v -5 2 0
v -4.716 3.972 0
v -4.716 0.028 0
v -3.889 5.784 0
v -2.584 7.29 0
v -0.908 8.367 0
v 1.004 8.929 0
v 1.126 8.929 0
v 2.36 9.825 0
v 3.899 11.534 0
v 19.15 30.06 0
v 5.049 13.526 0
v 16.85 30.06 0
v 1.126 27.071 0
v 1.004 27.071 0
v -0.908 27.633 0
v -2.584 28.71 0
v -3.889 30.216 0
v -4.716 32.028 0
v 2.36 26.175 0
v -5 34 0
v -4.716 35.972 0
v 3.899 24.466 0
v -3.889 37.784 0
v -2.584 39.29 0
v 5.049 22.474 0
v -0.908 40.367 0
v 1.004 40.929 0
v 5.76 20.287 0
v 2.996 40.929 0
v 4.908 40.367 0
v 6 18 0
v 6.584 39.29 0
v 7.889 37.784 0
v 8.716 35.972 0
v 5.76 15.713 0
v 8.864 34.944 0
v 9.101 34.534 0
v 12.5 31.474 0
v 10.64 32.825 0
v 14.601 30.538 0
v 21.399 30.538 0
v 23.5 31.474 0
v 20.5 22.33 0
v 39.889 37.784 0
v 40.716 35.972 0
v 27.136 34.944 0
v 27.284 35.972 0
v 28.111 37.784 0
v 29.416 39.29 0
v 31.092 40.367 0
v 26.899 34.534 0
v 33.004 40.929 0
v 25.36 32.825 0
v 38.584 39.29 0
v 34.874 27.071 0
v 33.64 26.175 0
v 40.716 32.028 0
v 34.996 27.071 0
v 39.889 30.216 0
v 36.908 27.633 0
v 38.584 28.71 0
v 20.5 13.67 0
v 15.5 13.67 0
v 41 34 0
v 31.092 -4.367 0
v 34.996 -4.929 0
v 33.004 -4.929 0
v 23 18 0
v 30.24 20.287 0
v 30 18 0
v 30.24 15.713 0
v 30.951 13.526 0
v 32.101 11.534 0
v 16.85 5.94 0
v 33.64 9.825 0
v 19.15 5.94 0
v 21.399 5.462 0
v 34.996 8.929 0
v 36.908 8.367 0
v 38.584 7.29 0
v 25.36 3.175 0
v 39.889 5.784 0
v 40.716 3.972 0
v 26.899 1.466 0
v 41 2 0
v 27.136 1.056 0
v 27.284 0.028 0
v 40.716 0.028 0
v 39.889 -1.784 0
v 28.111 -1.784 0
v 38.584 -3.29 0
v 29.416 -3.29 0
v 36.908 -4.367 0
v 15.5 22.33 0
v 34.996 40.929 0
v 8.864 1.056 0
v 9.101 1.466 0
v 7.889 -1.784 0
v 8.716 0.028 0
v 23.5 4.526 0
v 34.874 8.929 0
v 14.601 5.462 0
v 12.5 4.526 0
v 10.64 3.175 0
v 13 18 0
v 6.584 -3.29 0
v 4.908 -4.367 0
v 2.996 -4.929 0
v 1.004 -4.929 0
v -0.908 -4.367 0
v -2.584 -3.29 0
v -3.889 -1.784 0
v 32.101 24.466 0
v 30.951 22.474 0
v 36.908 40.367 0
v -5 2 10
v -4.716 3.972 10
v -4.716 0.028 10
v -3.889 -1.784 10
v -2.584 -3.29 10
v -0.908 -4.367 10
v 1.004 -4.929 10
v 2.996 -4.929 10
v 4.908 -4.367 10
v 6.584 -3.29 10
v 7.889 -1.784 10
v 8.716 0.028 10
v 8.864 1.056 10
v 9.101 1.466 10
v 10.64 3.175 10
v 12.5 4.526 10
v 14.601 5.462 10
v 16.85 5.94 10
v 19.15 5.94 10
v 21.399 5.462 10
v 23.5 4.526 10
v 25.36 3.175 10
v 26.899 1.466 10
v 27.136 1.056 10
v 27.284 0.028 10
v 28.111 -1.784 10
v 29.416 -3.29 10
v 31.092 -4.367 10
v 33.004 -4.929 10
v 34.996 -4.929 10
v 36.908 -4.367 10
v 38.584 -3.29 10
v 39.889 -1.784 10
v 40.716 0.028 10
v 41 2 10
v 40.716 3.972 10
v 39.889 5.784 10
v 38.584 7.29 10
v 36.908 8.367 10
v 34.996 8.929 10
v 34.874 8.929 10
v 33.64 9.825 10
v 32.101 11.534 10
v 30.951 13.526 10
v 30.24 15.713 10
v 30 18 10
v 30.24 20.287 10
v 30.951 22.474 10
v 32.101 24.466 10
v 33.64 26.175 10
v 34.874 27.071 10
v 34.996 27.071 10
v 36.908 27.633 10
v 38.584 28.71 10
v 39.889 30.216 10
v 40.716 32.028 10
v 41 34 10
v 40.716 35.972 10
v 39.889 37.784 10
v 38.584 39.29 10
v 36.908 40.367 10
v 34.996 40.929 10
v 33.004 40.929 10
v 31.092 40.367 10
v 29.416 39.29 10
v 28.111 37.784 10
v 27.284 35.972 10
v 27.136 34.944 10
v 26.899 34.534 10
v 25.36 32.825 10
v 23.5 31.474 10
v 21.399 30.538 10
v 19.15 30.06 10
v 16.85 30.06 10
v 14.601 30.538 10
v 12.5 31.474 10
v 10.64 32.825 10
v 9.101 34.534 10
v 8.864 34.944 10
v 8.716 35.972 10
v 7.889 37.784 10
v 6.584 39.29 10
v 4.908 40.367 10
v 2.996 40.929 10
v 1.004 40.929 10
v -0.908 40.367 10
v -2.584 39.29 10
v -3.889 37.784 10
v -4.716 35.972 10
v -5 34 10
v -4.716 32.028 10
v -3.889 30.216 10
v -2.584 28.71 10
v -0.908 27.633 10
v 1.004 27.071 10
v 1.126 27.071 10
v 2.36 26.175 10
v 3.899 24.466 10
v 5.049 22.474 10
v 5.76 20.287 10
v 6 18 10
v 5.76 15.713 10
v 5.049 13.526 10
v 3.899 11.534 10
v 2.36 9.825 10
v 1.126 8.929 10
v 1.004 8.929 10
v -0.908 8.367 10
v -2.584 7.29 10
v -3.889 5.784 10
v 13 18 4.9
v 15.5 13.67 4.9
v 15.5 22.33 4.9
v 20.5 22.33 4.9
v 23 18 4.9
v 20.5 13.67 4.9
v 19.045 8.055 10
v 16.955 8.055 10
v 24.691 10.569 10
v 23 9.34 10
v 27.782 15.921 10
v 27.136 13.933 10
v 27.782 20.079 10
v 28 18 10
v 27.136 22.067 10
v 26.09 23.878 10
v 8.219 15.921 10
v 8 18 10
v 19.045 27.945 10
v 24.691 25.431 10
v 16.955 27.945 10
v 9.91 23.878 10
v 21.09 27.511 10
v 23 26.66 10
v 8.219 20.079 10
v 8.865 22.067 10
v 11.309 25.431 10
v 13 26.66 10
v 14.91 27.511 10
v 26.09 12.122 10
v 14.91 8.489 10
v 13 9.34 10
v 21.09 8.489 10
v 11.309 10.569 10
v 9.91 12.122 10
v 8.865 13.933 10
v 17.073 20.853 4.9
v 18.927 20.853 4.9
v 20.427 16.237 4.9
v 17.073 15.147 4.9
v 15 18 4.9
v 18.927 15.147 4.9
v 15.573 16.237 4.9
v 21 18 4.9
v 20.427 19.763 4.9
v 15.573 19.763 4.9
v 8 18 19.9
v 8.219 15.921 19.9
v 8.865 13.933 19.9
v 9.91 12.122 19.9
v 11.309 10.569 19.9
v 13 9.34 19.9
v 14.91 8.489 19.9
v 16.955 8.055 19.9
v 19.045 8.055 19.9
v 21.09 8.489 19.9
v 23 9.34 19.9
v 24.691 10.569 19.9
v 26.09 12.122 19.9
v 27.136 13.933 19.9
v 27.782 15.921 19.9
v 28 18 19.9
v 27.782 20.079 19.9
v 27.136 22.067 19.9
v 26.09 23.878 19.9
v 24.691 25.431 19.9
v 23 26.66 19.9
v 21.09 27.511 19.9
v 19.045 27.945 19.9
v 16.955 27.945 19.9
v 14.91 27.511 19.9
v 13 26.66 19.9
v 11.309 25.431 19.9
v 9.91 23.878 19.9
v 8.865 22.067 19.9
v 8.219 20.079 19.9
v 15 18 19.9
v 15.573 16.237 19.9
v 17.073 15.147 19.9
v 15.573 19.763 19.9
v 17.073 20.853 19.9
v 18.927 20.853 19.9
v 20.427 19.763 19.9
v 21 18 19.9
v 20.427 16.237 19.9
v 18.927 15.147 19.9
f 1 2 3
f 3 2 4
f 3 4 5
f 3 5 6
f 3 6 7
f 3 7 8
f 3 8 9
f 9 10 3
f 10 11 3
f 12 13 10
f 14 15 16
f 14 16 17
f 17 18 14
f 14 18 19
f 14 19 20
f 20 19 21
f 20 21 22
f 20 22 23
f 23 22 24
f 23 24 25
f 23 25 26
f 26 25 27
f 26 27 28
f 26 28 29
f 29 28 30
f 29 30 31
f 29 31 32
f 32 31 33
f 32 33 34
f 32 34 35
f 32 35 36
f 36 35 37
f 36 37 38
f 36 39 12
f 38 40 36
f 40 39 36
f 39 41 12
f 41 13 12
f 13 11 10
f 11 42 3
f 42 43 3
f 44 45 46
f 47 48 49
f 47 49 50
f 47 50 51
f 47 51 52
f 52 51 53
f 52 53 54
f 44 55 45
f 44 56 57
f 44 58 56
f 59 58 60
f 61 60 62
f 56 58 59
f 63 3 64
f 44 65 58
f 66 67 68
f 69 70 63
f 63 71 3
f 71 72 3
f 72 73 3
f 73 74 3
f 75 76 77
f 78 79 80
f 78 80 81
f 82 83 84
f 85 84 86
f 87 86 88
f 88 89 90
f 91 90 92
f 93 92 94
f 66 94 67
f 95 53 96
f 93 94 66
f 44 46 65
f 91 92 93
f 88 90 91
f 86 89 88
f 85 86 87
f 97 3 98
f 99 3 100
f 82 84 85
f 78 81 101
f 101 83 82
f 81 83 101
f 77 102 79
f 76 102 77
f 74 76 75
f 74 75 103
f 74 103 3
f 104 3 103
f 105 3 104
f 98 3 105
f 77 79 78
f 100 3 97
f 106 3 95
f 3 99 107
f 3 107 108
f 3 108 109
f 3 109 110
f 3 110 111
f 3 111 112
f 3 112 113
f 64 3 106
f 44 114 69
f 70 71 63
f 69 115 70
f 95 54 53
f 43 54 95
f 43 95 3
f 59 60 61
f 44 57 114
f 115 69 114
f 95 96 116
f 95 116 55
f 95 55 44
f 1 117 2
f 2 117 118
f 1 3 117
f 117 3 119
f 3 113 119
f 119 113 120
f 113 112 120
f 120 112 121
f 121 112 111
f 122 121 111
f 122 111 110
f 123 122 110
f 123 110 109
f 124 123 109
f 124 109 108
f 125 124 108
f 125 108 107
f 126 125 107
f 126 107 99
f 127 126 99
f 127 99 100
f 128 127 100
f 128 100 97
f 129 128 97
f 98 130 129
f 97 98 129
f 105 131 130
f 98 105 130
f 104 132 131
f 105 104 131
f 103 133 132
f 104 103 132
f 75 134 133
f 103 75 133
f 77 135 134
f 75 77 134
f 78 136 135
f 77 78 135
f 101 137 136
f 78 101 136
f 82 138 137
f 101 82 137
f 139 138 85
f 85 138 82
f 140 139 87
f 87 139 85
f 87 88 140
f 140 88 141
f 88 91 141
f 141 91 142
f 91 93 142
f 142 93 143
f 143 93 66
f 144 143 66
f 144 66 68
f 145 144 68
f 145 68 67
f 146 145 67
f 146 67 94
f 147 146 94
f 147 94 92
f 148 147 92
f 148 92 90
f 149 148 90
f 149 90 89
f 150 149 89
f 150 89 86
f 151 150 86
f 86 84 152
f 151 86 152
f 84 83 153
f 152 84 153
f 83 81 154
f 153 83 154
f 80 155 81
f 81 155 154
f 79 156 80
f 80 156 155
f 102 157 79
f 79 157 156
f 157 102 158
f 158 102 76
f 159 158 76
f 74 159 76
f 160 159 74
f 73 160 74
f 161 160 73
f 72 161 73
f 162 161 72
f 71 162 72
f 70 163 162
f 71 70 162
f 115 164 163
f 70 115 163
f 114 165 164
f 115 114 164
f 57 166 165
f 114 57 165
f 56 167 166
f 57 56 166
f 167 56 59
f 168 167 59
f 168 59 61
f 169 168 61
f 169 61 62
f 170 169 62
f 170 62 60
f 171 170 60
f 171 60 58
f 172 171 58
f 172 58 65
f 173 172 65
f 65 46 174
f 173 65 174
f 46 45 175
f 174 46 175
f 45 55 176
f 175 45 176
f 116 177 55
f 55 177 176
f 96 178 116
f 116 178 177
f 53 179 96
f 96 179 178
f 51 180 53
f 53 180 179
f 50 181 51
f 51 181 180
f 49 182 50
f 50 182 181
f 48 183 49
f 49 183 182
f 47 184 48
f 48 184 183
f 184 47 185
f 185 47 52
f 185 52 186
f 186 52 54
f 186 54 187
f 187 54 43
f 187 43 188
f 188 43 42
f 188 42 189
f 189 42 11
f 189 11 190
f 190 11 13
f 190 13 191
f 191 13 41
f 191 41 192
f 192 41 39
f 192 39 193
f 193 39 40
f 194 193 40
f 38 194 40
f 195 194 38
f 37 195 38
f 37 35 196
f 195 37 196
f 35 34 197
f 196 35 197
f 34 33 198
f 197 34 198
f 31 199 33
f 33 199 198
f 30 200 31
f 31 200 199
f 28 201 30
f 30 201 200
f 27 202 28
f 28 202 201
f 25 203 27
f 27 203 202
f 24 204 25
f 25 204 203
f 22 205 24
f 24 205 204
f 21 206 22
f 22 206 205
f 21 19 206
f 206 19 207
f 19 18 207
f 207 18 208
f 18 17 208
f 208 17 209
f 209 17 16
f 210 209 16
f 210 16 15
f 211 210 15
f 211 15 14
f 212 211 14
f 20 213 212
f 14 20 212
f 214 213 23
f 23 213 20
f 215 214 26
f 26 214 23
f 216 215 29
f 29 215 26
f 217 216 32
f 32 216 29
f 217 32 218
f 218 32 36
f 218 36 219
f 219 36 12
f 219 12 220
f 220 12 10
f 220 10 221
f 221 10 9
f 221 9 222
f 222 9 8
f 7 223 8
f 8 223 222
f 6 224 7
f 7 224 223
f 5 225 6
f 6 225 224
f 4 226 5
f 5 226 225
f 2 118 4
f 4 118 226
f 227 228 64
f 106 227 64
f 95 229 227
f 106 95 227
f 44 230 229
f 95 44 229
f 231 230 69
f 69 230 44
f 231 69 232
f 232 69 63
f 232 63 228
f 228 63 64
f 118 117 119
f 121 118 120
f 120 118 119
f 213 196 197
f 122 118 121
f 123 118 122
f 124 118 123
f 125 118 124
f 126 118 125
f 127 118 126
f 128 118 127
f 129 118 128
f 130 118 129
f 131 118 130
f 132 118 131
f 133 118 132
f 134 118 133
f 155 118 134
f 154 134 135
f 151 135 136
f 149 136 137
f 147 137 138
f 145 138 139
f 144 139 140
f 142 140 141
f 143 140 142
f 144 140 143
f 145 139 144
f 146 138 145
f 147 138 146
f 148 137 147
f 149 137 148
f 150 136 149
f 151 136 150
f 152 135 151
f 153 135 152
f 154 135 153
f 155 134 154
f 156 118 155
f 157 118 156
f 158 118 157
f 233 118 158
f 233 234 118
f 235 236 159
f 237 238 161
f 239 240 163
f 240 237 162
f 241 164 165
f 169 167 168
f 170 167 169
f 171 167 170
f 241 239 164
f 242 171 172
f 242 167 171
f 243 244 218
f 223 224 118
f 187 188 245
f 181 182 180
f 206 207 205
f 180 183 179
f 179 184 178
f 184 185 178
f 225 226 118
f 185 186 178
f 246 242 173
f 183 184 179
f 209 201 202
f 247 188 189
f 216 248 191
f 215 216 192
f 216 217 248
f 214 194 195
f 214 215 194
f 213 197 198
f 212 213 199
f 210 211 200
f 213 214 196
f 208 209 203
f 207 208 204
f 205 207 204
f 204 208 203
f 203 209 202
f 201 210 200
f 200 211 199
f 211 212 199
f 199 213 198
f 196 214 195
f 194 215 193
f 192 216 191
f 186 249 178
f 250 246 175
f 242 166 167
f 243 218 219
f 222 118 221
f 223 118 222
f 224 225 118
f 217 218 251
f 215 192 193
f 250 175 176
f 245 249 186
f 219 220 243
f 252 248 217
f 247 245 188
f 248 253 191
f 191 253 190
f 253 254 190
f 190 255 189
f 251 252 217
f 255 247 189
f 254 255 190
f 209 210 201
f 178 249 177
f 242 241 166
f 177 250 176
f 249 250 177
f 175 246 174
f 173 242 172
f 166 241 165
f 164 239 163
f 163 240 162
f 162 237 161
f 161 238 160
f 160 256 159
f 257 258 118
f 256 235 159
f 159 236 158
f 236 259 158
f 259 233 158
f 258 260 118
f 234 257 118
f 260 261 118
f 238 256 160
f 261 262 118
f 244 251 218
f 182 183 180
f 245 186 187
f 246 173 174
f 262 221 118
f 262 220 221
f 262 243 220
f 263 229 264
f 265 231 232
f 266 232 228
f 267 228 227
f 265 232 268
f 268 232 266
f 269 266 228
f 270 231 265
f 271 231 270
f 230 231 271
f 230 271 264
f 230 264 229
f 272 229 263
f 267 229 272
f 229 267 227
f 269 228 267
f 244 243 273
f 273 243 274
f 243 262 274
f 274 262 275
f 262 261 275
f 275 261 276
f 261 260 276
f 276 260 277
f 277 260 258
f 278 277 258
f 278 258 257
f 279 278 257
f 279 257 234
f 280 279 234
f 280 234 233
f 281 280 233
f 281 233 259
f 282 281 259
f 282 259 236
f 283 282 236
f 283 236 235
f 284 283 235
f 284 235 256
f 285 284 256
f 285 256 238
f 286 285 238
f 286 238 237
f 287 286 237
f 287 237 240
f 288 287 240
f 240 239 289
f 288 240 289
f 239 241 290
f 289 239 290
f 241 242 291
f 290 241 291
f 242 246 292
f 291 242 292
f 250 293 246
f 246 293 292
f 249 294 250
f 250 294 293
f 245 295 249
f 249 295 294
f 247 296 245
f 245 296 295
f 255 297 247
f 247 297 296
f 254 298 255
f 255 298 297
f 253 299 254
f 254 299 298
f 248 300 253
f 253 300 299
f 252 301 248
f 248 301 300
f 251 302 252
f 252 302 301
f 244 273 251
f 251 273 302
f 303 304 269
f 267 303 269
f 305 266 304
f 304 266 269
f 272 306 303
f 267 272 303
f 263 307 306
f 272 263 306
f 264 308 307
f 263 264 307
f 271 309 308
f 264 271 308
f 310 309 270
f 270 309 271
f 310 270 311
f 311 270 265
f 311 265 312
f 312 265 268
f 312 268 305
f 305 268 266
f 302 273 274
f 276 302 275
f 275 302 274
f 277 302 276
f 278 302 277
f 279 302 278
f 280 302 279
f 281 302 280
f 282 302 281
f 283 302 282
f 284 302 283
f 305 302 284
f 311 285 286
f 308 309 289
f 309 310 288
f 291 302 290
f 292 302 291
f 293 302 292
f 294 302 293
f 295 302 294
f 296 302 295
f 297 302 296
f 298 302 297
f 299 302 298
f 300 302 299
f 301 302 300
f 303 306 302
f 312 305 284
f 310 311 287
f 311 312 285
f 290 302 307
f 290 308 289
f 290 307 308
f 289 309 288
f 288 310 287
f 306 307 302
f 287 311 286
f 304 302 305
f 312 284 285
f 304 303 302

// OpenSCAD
use <MCAD/regular_shapes.scad>
module manopola()
{
difference()
{
cube([36,36,10]);
translate([-5,18,-0.1]) cylinder(11,11,11);
translate([18,-5,-0.1]) cylinder(11,11,11);
translate([41,18,-0.1]) cylinder(11,11,11);
translate([18,41,-0.1]) cylinder(11,11,11);
translate([18,18,-0.1])hexagon_prism(5,5);
}
translate([2,2,0]) cylinder(10,7,7);
translate([2,34,0]) cylinder(10,7,7);
translate([34,2,0]) cylinder(10,7,7);
translate([34,34,0]) cylinder(10,7,7);
translate([18,18,9.9]) cylinder(10,10,10);
}

difference()
{
manopola();
translate([18,18,0]) cylinder(22,3,3);
}
